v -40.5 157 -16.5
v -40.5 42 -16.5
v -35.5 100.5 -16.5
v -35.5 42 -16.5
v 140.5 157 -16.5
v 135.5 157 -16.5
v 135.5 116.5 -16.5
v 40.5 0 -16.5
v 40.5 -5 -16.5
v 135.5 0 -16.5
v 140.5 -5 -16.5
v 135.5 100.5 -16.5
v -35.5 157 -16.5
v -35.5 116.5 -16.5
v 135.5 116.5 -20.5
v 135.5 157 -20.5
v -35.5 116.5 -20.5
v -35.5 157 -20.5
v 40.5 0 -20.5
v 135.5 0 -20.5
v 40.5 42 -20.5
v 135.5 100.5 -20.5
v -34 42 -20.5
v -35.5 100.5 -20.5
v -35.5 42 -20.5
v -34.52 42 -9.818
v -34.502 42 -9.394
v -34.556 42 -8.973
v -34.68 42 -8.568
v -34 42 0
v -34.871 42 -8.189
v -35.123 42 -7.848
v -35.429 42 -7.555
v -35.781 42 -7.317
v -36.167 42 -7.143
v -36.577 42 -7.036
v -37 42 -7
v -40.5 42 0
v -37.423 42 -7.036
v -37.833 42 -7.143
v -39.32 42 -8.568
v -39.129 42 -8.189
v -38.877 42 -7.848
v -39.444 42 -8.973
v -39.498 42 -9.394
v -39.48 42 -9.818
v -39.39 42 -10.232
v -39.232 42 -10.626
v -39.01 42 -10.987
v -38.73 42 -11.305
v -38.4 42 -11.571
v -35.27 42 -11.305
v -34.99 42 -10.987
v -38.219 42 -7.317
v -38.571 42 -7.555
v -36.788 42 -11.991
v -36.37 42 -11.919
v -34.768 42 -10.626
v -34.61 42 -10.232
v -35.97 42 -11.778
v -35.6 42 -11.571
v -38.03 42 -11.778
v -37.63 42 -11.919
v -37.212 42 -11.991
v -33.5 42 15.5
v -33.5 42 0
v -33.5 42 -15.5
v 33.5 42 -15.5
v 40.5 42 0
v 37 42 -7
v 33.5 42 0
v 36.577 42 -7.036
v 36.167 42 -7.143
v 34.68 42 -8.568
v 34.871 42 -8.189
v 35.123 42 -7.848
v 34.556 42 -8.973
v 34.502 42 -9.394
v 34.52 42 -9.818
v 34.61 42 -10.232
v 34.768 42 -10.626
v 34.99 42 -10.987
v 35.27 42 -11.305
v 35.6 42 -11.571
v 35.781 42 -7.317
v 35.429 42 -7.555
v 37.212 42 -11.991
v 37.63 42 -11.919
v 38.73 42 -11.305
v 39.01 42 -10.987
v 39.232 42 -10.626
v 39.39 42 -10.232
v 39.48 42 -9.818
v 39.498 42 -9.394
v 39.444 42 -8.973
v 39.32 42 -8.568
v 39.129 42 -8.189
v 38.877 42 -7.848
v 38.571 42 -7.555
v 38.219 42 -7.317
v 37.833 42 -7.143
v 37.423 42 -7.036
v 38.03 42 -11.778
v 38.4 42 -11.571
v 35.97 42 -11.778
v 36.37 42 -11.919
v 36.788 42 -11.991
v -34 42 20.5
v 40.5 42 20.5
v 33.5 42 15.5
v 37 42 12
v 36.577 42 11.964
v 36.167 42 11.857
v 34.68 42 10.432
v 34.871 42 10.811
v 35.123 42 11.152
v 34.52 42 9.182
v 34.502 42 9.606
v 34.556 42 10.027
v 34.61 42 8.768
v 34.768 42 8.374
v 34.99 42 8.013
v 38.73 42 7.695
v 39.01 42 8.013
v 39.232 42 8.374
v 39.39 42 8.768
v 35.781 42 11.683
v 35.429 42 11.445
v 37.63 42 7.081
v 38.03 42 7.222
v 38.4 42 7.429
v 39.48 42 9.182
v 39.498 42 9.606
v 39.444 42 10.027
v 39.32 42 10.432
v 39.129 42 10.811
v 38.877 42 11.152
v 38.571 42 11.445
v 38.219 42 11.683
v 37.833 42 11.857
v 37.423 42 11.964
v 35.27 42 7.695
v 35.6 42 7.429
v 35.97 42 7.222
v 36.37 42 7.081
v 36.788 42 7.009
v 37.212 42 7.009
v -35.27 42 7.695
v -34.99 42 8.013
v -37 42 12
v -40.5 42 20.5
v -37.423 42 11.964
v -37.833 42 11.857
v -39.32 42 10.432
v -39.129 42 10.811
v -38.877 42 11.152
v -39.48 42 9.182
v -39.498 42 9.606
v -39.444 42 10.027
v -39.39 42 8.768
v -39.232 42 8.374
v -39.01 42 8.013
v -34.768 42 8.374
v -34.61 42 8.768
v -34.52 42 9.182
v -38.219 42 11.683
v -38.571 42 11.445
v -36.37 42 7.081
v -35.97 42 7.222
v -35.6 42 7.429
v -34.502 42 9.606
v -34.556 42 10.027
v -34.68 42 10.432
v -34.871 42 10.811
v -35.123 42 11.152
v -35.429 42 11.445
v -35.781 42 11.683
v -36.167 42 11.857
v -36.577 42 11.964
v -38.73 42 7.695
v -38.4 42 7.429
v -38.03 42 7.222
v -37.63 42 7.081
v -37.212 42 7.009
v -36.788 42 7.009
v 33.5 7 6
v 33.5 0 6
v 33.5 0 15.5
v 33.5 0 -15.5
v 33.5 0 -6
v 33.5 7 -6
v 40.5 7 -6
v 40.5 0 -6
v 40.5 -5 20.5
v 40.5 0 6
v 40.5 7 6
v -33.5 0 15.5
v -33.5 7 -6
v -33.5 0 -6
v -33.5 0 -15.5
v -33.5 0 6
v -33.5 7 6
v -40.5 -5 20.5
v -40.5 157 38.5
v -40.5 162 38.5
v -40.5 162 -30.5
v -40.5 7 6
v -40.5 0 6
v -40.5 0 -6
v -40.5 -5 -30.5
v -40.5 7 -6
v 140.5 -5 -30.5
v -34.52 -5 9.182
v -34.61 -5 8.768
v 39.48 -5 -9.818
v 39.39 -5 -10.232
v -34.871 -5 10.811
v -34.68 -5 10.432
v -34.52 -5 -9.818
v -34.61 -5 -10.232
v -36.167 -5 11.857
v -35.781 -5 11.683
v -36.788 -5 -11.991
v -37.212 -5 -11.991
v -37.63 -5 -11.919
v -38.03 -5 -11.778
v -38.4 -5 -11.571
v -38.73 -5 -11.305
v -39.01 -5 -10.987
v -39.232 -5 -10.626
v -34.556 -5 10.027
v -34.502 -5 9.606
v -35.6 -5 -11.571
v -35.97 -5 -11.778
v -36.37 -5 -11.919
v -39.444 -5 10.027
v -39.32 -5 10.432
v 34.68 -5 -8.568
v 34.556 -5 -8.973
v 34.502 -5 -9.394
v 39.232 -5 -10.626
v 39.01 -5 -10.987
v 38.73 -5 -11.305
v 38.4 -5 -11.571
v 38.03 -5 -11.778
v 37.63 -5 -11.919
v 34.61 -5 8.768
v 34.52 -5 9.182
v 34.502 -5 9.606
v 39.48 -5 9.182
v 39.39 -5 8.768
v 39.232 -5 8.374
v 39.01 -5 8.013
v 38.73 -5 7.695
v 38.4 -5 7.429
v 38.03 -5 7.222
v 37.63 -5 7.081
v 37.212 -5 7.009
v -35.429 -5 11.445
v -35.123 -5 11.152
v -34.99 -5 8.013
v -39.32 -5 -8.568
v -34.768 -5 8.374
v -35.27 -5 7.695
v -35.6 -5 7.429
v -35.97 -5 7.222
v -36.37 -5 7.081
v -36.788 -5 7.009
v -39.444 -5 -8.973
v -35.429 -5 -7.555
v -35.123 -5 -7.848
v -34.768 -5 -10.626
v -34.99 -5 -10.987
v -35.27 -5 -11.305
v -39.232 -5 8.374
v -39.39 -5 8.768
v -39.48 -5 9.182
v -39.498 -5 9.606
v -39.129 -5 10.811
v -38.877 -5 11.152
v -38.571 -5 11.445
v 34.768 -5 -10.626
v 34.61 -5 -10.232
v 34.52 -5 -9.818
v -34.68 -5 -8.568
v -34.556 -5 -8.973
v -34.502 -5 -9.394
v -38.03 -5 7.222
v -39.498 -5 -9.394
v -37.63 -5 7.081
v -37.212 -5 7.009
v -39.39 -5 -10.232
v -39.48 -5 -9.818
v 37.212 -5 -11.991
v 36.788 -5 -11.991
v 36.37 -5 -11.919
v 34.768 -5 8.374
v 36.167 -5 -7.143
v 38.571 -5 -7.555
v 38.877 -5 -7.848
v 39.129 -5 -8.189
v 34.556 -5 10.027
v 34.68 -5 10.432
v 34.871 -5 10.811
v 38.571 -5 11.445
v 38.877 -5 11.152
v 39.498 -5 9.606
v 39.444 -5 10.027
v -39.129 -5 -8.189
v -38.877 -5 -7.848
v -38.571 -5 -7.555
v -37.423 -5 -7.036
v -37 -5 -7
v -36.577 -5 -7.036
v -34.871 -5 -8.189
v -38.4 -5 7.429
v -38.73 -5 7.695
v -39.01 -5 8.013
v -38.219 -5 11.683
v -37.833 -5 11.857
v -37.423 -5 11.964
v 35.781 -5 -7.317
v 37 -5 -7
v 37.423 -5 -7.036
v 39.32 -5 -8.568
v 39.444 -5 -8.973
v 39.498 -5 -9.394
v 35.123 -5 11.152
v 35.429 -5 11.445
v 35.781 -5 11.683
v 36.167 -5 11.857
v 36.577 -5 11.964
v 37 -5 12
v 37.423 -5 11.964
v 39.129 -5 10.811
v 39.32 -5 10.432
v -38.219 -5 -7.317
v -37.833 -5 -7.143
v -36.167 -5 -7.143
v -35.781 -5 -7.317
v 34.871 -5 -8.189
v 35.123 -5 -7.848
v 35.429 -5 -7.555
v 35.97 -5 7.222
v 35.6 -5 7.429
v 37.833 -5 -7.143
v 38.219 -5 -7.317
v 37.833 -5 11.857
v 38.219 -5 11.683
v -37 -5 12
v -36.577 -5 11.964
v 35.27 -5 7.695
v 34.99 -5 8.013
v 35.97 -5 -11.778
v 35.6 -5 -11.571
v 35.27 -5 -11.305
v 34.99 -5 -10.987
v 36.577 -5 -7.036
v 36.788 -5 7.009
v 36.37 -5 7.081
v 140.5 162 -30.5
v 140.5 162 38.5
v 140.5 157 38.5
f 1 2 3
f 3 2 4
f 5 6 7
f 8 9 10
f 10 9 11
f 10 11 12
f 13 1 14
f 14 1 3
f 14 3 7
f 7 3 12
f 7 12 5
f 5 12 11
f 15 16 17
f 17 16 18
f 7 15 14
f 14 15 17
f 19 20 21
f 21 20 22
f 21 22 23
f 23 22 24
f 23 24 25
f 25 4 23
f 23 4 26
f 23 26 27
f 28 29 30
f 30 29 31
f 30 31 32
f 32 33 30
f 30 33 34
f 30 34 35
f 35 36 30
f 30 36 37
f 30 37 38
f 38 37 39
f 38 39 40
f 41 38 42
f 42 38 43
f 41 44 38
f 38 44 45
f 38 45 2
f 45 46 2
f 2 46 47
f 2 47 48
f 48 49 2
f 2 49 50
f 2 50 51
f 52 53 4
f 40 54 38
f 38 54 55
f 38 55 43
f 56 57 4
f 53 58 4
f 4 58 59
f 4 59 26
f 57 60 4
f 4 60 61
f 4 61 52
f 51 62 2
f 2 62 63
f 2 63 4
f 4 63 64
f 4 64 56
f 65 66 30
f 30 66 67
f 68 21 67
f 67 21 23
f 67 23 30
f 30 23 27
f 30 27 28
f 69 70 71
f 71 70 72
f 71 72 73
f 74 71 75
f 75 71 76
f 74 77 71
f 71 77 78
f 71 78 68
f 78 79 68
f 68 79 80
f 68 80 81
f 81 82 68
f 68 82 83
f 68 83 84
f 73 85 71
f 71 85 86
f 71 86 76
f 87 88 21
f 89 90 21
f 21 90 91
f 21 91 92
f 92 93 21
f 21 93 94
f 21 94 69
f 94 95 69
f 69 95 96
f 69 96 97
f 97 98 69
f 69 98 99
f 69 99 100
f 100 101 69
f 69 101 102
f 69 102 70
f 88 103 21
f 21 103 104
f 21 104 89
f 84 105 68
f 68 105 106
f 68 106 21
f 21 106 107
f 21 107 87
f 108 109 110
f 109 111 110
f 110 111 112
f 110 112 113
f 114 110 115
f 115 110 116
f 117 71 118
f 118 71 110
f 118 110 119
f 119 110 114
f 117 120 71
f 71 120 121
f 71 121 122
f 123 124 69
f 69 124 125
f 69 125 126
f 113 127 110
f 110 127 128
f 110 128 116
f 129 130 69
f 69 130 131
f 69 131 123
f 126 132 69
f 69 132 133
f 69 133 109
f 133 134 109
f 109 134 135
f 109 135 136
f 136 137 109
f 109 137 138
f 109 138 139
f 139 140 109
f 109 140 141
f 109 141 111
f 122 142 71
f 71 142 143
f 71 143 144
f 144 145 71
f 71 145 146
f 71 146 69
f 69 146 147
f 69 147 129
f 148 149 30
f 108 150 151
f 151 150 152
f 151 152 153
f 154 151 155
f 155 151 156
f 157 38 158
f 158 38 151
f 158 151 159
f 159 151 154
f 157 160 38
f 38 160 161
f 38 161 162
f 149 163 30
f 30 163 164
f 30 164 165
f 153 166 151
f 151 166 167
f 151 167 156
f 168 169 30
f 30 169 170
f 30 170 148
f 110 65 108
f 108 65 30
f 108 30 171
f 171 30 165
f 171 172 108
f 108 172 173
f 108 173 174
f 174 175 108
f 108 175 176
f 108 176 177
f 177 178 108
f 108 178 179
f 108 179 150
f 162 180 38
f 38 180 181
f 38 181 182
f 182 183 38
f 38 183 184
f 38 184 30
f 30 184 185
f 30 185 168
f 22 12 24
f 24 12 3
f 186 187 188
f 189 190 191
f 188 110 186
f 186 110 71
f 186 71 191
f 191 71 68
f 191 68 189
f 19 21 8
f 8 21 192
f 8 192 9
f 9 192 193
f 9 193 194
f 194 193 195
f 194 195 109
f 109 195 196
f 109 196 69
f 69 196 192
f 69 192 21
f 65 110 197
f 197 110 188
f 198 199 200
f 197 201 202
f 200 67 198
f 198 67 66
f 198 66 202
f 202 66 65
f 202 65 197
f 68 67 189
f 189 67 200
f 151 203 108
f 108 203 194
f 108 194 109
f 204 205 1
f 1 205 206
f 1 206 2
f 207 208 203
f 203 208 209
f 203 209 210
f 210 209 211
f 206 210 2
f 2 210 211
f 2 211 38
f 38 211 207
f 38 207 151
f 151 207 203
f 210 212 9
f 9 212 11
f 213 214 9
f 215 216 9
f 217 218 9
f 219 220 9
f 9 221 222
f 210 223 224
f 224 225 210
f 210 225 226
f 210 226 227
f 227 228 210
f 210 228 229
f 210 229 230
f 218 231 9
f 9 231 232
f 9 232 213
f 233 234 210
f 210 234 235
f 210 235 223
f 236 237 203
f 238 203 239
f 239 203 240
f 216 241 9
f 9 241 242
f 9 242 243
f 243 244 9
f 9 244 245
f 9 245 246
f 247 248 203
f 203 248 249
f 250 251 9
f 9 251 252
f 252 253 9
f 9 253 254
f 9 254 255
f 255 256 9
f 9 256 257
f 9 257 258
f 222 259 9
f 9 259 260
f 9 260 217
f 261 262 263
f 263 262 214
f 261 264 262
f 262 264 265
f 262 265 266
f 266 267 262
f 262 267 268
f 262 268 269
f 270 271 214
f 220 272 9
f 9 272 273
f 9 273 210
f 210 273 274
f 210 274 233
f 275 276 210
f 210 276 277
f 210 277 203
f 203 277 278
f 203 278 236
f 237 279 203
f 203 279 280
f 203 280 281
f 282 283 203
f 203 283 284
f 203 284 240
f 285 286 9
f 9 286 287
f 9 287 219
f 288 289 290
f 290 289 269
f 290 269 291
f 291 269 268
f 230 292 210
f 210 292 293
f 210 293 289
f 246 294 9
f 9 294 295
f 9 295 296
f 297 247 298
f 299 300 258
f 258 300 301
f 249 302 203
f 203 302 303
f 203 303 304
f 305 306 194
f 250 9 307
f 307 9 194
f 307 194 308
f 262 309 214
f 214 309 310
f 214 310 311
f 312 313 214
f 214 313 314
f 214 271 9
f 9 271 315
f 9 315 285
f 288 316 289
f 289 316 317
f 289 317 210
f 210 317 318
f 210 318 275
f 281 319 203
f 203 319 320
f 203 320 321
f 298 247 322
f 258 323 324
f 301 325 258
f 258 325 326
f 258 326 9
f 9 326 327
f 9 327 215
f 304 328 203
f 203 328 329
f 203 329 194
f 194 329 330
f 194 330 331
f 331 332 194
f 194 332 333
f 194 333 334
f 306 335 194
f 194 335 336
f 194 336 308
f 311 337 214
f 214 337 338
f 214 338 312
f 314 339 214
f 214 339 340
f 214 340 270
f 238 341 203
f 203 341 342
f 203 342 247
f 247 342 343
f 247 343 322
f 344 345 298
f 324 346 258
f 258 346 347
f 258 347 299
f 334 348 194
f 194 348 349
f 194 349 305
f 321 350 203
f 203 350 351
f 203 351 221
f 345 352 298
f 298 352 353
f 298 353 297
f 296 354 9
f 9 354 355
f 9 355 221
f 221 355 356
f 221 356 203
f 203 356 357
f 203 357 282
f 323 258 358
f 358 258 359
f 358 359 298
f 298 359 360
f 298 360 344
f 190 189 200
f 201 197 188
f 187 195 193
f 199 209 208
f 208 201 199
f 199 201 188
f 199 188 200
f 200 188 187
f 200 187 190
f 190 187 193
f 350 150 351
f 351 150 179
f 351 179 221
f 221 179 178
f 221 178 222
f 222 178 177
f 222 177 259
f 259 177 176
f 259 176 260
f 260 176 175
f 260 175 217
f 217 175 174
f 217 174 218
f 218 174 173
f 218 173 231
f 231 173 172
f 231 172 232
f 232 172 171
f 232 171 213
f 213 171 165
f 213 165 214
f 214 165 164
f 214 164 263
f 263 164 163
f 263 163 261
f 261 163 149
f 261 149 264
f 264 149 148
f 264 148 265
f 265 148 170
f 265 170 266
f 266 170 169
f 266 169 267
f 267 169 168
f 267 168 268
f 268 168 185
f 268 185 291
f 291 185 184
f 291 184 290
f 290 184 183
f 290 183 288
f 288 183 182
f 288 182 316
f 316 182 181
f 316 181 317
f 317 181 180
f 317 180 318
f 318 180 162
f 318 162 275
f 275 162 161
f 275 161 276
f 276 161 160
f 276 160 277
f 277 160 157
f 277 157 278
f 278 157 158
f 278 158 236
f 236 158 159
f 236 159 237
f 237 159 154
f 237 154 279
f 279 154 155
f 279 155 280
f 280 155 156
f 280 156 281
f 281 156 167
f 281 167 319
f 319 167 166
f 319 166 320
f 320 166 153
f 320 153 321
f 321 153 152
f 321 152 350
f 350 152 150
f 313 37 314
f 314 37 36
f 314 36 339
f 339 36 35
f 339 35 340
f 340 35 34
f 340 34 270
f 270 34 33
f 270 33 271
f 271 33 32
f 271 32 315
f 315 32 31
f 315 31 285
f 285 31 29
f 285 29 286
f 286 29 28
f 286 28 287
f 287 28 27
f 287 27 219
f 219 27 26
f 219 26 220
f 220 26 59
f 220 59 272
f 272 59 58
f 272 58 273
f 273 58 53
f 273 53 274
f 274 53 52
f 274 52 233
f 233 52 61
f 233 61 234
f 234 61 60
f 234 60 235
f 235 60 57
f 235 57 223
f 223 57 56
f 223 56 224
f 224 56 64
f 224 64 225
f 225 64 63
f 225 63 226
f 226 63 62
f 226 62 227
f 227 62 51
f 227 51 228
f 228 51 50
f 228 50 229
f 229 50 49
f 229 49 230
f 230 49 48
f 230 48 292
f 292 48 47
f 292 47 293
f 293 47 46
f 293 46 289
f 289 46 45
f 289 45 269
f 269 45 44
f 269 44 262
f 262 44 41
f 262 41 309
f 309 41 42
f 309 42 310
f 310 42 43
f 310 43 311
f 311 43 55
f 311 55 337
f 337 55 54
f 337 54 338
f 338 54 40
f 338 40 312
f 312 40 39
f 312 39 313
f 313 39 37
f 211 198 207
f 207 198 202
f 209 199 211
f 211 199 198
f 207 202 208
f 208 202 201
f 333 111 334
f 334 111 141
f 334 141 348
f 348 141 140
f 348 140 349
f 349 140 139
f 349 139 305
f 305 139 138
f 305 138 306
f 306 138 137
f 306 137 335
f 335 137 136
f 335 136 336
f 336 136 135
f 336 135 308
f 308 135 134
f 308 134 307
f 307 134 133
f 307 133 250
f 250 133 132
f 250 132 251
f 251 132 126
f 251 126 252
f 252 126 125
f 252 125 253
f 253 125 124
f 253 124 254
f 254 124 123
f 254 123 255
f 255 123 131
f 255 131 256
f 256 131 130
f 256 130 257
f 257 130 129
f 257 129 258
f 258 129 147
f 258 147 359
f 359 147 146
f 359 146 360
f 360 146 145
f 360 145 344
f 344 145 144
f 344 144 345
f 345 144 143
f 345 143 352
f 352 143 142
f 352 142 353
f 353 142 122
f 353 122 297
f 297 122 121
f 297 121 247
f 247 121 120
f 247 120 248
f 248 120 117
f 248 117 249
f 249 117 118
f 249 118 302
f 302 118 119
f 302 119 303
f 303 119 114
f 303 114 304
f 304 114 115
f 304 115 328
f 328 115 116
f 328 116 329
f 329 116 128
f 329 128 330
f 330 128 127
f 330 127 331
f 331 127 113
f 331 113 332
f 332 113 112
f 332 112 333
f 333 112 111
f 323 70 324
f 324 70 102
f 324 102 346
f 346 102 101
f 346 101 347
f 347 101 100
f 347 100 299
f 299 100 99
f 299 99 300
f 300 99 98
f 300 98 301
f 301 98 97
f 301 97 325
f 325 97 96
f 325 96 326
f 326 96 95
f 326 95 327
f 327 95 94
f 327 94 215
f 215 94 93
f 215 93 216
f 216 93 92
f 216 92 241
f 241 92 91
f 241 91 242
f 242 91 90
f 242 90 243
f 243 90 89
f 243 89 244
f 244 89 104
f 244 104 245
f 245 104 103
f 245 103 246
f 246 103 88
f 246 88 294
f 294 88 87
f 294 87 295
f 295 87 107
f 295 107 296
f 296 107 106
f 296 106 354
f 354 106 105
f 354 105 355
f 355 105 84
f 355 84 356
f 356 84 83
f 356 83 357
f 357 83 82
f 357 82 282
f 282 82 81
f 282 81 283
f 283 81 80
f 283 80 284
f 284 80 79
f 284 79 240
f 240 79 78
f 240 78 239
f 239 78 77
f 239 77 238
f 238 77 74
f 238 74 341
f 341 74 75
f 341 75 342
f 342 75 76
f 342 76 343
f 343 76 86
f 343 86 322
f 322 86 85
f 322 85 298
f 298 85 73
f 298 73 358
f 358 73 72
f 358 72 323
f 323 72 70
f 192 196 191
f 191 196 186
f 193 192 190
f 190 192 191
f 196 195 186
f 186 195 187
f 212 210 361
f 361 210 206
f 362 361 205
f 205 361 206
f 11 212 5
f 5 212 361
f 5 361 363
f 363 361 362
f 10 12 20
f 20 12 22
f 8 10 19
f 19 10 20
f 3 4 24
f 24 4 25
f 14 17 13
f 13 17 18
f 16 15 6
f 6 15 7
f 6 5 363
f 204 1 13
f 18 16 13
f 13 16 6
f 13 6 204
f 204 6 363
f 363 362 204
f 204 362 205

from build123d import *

# Parameters (mm, degrees)
SKETCH2_W                = 81
SKETCH2_H                = 41
SKETCH2_W_2              = 67
SKETCH2_H_2              = 31
BOSS_EXTRUDE1_DEPTH      = 42
BOSS_EXTRUDE1_DEPTH_BACK = 5
BOSS_EXTRUDE2_REACH      = 76
SKETCH3_W                = 31
SKETCH3_H                = 5
SKETCH4_R                = 2.5
CUT_EXTRUDE1_DEPTH       = 48
SKETCH5_W                = 12
SKETCH5_H                = 7
CUT_EXTRUDE2_DEPTH       = 20
SKETCH6_W                = 81
SKETCH6_H                = 47
BOSS_EXTRUDE3_DEPTH      = 10
SKETCH7_W                = 81
SKETCH7_H                = 10
BOSS_EXTRUDE4_DEPTH      = 120
SKETCH9_W                = 10
SKETCH9_H                = 167
BOSS_EXTRUDE6_DEPTH      = 100
SKETCH8_W                = 181
SKETCH8_H                = 16
BOSS_EXTRUDE5_DEPTH      = 4
SKETCH11_W               = 95
SKETCH11_H               = 5
SKETCH11_W_2             = 5
SKETCH11_H_2             = 100.5
SKETCH11_H_3             = 45.5
SKETCH11_W_3             = 181
SKETCH11_H_4             = 58.5
BOSS_EXTRUDE7_DEPTH      = 4
SKETCH12_W               = 181
SKETCH12_H               = 5
BOSS_EXTRUDE8_DEPTH      = 55


with BuildPart() as part:
    # Sketch2 → Boss-Extrude1 (new body, two sides)
    with BuildSketch(Plane(origin=(0, 0, 0), x_dir=(1, 0, 0), z_dir=(0, 1, 0))) as boss_extrude1_sk:
        Rectangle(SKETCH2_W, SKETCH2_H)
        Rectangle(SKETCH2_W_2, SKETCH2_H_2, mode=Mode.SUBTRACT)
    extrude(amount=BOSS_EXTRUDE1_DEPTH)
    extrude(boss_extrude1_sk.sketch, amount=-BOSS_EXTRUDE1_DEPTH_BACK)

    # Sketch3 → Boss-Extrude2 (add, up to next)
    with BuildSketch(Plane(origin=(-33.5, 0, 0), x_dir=(0, 0, -1), z_dir=(1, 0, 0)), mode=Mode.PRIVATE) as boss_extrude2_sk1:
        with Locations((0, -2.5)):
            Rectangle(SKETCH3_W, SKETCH3_H)
    boss_extrude2_tool1 = extrude(boss_extrude2_sk1.sketch, amount=BOSS_EXTRUDE2_REACH, mode=Mode.PRIVATE) - part.part
    add(boss_extrude2_tool1.solids().sort_by_distance((-33.5, -2.5, 0))[0])

    # Sketch4 → Cut-Extrude1 (cut, through all)
    with BuildSketch(Plane(origin=(0, 42, 0), x_dir=(1, 0, 0), z_dir=(0, 1, 0))):
        with Locations((-37, 9.5)):
            Circle(SKETCH4_R)
        with Locations((-37, -9.5)):
            Circle(SKETCH4_R)
    cut_extrude1 = extrude(amount=-CUT_EXTRUDE1_DEPTH, mode=Mode.SUBTRACT)

    # Sketch5 → Cut-Extrude2 (cut)
    with BuildSketch(Plane.ZY.offset(40.5)):
        with Locations((0, 3.5)):
            Rectangle(SKETCH5_W, SKETCH5_H)
    cut_extrude2 = extrude(amount=-CUT_EXTRUDE2_DEPTH, mode=Mode.SUBTRACT)

    # Mirror1: Cut-Extrude1, Cut-Extrude2 across plane
    add(cut_extrude1.mirror(Plane(origin=(0, 0, 0), x_dir=(0, 0, 1), z_dir=(1, 0, 0))), mode=Mode.SUBTRACT)
    add(cut_extrude2.mirror(Plane(origin=(0, 0, 0), x_dir=(0, 0, 1), z_dir=(1, 0, 0))), mode=Mode.SUBTRACT)

    # Sketch6 → Boss-Extrude3 (add)
    with BuildSketch(Plane(origin=(0, 0, -20.5), x_dir=(-1, 0, 0), z_dir=(0, 0, -1))):
        with Locations((0, 18.5)):
            Rectangle(SKETCH6_W, SKETCH6_H)
    extrude(amount=BOSS_EXTRUDE3_DEPTH)

    # Sketch7 → Boss-Extrude4 (add)
    with BuildSketch(Plane(origin=(0, 42, 0), x_dir=(1, 0, 0), z_dir=(0, 1, 0))):
        with Locations((0, 25.5)):
            Rectangle(SKETCH7_W, SKETCH7_H)
    extrude(amount=BOSS_EXTRUDE4_DEPTH)

    # Sketch9 → Boss-Extrude6 (add)
    with BuildSketch(Plane(origin=(40.5, 0, 0), x_dir=(0, 0, -1), z_dir=(1, 0, 0))):
        with Locations((25.5, 78.5)):
            Rectangle(SKETCH9_W, SKETCH9_H)
    extrude(amount=BOSS_EXTRUDE6_DEPTH)

    # Sketch8 → Boss-Extrude5 (add)
    with BuildSketch(Plane.XY.offset(-20.5)):
        with Locations((50, 108.5)):
            Rectangle(SKETCH8_W, SKETCH8_H)
    extrude(amount=BOSS_EXTRUDE5_DEPTH)

    # Sketch11 → Boss-Extrude7 (add)
    with BuildSketch(Plane.XY.offset(-20.5)):
        with Locations((88, -2.5)):
            Rectangle(SKETCH11_W, SKETCH11_H)
        with Locations((138, 50.25)):
            Rectangle(SKETCH11_W_2, SKETCH11_H_2)
        with Locations((138, -2.5)):
            Rectangle(SKETCH11_W_2, SKETCH11_H)
        with Locations((-38, 139.25)):
            Rectangle(SKETCH11_W_2, SKETCH11_H_3)
        with Locations((50, 159.5)):
            Rectangle(SKETCH11_W_3, SKETCH11_H)
        with Locations((138, 139.25)):
            Rectangle(SKETCH11_W_2, SKETCH11_H_3)
        with Locations((-38, 71.25)):
            Rectangle(SKETCH11_W_2, SKETCH11_H_4)
    extrude(amount=BOSS_EXTRUDE7_DEPTH)

    # Sketch12 → Boss-Extrude8 (add)
    with BuildSketch(Plane.XY.offset(-16.5)):
        with Locations((50, 159.5)):
            Rectangle(SKETCH12_W, SKETCH12_H)
    extrude(amount=BOSS_EXTRUDE8_DEPTH)


solid = part.part
